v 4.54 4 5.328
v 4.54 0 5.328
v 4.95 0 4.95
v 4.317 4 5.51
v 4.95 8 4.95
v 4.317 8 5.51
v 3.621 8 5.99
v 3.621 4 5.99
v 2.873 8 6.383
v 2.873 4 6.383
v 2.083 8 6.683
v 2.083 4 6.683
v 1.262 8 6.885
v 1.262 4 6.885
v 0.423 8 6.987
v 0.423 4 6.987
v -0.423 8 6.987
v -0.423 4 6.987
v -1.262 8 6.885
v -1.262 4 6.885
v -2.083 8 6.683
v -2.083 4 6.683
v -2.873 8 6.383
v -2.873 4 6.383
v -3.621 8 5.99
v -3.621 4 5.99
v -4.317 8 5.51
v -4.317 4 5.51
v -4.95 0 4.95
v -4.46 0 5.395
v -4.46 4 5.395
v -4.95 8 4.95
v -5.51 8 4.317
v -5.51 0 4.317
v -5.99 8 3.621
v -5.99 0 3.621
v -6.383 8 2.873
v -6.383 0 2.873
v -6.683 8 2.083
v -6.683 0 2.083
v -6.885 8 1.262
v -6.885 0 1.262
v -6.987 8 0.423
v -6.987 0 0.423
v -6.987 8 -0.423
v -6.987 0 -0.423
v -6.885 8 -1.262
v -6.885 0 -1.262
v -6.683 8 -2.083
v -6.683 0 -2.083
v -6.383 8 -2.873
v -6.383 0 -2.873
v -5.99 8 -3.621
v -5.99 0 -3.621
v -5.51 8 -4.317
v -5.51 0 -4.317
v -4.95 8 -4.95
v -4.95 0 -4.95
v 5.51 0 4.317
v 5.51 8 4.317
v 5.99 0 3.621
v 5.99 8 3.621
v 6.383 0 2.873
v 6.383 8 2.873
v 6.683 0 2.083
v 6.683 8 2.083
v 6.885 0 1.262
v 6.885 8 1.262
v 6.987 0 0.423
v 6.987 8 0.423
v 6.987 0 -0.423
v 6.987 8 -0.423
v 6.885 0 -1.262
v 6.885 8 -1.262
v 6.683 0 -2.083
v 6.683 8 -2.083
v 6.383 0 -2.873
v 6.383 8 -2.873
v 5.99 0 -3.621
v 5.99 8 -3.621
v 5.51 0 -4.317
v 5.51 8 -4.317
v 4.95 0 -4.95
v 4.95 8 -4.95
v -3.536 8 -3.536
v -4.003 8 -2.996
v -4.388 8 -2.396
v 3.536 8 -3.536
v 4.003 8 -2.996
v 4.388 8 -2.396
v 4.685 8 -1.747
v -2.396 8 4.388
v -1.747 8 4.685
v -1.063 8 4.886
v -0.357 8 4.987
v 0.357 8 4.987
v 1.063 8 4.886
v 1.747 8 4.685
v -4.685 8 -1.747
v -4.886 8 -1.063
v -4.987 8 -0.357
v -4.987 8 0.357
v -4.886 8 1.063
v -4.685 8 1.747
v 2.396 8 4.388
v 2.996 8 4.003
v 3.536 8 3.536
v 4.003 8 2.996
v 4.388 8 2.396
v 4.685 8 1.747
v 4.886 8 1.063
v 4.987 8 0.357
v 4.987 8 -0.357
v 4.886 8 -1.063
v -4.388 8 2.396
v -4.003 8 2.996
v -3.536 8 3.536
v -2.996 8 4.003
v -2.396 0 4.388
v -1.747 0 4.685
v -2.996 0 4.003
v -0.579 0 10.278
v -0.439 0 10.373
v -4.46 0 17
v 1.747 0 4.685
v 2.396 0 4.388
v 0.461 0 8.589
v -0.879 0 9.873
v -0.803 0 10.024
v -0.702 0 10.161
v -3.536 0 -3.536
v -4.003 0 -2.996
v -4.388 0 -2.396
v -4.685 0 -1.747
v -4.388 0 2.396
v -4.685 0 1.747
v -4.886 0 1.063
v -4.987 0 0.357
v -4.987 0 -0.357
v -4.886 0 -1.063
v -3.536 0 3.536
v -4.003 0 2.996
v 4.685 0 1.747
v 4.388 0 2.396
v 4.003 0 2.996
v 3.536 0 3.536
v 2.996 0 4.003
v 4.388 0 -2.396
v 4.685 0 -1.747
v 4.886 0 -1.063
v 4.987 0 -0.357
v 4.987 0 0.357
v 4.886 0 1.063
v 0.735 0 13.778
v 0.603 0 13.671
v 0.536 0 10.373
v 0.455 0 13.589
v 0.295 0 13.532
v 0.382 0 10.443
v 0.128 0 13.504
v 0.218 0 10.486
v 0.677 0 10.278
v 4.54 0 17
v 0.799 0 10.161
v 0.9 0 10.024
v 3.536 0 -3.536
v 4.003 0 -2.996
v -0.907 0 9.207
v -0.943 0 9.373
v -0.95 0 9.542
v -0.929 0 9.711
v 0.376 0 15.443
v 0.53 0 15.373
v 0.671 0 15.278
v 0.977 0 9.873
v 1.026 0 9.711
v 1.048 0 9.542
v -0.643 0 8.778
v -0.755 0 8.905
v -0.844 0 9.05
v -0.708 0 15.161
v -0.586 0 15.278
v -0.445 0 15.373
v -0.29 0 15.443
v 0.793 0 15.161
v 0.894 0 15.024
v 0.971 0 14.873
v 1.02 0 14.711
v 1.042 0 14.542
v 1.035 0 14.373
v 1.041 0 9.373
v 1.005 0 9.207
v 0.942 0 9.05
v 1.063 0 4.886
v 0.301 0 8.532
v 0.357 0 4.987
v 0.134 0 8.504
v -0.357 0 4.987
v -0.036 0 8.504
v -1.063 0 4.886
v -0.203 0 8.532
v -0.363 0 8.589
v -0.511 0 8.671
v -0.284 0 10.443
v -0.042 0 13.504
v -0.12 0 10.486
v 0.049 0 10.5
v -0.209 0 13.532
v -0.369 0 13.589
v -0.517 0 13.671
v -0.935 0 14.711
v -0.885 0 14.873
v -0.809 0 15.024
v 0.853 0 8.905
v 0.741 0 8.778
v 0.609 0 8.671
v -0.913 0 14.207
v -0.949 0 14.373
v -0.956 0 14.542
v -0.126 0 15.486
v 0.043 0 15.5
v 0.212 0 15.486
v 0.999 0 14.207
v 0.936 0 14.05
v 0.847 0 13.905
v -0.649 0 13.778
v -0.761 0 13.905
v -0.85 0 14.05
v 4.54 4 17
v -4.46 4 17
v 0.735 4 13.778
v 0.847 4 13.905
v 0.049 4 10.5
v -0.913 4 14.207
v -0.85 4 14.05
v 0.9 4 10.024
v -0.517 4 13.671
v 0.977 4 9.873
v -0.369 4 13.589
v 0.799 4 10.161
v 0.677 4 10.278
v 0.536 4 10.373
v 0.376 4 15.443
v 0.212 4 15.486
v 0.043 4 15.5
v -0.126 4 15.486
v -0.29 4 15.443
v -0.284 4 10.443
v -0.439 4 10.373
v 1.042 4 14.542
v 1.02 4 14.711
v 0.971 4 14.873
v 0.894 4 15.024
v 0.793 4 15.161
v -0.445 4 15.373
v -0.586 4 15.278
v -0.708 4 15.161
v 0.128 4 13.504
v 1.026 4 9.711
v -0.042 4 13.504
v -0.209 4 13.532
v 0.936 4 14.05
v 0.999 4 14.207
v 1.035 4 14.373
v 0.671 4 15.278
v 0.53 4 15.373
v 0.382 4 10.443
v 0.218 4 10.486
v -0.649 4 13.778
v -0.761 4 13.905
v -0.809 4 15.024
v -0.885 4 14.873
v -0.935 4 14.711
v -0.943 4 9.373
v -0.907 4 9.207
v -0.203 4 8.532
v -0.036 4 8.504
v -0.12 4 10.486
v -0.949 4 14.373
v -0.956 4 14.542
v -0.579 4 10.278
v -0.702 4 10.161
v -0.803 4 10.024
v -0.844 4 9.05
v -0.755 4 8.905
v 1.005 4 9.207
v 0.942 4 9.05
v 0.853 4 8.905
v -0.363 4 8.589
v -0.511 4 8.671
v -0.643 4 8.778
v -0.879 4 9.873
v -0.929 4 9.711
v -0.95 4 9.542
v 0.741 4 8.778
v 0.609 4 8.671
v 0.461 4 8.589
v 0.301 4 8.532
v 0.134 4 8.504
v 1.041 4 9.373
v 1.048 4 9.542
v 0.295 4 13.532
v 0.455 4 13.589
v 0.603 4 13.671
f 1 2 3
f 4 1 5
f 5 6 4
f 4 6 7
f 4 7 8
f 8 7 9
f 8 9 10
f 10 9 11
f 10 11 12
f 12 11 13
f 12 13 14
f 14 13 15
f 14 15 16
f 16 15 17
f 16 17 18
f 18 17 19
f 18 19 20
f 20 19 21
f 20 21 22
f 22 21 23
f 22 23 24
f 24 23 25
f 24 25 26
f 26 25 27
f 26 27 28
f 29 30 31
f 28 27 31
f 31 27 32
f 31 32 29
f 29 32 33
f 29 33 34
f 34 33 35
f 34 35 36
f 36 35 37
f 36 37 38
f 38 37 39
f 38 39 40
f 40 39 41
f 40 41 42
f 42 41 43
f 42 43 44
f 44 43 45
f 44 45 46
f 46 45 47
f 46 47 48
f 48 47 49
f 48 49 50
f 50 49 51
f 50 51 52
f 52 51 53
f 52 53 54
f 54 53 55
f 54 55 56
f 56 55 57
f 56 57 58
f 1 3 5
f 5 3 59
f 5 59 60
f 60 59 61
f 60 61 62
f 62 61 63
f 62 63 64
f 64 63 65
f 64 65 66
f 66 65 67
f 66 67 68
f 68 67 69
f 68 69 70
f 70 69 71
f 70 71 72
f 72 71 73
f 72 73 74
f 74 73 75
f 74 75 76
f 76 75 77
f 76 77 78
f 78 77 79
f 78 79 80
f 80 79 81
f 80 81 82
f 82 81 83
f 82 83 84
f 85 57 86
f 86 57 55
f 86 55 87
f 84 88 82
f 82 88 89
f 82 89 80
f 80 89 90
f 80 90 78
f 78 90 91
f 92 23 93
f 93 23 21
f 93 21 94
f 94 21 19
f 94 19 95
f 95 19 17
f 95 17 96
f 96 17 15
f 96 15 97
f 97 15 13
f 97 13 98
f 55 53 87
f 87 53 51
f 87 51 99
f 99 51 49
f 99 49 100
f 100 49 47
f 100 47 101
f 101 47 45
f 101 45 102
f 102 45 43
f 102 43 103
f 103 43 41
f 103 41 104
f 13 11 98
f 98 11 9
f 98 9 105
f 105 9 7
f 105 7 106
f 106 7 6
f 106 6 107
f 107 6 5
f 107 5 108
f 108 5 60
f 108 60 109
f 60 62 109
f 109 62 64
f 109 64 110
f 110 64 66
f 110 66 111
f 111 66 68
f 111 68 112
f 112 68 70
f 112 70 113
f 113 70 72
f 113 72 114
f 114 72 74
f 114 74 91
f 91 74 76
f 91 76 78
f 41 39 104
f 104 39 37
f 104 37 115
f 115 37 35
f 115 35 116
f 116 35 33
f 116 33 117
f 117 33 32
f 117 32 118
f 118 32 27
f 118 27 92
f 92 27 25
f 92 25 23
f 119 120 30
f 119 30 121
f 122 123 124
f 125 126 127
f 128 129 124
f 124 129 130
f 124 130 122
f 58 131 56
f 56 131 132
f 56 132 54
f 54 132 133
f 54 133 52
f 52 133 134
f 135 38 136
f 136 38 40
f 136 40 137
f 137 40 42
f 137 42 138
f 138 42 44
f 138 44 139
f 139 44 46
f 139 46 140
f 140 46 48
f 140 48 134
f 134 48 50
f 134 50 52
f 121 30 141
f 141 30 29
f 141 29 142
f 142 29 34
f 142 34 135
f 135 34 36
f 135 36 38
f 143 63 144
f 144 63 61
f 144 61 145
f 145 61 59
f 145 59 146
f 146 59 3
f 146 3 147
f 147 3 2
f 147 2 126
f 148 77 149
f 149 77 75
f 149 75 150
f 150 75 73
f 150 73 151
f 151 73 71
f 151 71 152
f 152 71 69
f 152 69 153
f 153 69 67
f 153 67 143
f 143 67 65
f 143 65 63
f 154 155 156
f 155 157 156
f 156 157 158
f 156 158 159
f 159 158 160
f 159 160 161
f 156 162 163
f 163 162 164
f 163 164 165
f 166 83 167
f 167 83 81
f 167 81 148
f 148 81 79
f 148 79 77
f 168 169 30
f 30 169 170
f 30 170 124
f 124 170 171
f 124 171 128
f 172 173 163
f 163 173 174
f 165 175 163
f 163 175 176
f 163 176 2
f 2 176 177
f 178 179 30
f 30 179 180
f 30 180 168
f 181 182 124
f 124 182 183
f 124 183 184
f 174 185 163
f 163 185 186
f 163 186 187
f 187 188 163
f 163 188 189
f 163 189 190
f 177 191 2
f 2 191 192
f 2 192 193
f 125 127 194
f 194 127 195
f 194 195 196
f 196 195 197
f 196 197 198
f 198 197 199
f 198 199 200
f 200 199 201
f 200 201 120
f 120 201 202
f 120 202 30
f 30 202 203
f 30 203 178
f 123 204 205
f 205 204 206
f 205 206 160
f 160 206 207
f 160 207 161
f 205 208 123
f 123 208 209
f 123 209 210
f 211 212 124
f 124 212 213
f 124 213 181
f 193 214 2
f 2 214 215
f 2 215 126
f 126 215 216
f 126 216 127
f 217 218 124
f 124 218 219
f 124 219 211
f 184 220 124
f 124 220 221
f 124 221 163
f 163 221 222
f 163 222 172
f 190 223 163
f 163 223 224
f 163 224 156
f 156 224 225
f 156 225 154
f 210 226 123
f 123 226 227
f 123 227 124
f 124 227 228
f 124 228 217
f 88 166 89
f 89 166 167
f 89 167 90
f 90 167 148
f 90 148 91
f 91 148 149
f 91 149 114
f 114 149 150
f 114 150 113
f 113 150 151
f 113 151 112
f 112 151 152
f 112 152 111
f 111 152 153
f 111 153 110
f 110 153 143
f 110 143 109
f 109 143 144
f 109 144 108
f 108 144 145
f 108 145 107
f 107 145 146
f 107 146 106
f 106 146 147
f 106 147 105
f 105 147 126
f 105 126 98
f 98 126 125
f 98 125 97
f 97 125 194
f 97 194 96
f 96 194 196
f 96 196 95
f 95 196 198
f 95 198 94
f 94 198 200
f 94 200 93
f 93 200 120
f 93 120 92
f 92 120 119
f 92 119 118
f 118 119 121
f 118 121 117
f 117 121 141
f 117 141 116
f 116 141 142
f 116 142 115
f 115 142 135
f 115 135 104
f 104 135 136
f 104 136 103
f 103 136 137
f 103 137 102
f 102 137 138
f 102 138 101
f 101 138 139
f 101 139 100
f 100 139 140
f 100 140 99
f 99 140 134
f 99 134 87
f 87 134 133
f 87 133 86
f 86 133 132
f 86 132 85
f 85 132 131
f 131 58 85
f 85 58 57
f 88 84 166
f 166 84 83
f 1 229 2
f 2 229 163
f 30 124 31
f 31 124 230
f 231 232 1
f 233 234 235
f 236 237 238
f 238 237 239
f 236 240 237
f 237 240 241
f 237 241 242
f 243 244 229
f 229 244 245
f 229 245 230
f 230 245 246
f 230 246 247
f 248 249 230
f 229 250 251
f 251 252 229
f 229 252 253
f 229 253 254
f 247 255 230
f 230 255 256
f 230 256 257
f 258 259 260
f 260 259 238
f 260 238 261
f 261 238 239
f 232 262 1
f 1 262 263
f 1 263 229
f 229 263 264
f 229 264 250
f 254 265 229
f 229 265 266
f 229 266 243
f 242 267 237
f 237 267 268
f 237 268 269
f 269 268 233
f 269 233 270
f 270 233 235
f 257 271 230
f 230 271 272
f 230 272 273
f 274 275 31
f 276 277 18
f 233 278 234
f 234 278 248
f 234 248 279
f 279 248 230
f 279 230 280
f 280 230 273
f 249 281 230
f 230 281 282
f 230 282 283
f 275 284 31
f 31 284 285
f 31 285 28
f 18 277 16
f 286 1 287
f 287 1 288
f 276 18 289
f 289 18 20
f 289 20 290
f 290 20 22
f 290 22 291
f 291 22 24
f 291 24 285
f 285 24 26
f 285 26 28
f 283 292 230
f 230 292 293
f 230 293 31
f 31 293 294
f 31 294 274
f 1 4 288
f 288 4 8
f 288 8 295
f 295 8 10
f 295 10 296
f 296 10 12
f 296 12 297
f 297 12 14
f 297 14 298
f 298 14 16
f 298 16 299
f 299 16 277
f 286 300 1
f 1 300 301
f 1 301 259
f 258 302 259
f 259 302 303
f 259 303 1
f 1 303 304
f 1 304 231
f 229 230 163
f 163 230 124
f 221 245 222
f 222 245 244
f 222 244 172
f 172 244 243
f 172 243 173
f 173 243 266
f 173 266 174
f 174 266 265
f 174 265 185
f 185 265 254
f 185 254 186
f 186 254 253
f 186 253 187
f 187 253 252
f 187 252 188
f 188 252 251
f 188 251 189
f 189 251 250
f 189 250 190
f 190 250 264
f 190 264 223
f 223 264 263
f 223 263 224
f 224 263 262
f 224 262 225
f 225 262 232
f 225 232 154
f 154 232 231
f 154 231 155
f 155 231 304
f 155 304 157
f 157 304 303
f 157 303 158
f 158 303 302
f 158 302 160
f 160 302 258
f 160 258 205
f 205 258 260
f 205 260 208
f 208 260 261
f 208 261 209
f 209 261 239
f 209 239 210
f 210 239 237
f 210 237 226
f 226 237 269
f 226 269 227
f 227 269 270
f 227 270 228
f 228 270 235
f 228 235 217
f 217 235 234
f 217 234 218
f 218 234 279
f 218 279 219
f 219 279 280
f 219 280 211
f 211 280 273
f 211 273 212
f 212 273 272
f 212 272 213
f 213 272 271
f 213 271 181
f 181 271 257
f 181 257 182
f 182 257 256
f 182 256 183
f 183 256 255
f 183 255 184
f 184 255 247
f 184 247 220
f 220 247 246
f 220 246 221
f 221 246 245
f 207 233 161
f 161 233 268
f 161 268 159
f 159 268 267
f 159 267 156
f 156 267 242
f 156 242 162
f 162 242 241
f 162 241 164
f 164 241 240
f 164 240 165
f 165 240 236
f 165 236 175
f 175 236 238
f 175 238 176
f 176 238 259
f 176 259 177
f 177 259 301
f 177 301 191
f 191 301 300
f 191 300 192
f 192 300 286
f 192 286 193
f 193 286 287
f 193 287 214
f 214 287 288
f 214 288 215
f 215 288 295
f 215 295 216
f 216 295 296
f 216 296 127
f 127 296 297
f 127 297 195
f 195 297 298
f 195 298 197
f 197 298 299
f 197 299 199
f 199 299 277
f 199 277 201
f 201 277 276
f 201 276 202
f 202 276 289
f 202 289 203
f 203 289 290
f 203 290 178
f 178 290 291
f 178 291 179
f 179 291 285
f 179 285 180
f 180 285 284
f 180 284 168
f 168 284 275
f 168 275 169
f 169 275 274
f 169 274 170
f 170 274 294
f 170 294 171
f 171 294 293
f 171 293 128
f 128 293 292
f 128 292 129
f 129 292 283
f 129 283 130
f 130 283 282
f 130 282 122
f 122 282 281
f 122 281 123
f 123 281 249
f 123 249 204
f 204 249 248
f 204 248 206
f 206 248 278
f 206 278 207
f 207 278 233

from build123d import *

# Parameters (mm, degrees)
SKETCH1_R                = 7
SKETCH1_R_2              = 5
BOSS_EXTRUDE1_DEPTH      = 8
CUT_EXTRUDE1_DEPTH       = 8
SKETCH5_W                = 9
SKETCH5_H                = 10
BOSS_EXTRUDE2_DEPTH      = 4
BOSS_EXTRUDE4_REACH      = 17.994
BOSS_EXTRUDE4_END_RADIUS = 7
SKETCH6_W                = 9
SKETCH6_H                = 4
SKETCH8_R                = 1
CUT_EXTRUDE2_DEPTH       = 8


with BuildPart() as part:
    # Sketch1 → Boss-Extrude1 (new body)
    with BuildSketch(Plane(origin=(0, 0, 0), x_dir=(1, 0, 0), z_dir=(0, 1, 0))):
        with Locations(Location((0, 0, 0), (0, 0, 270))):
            Circle(SKETCH1_R)
        with Locations(Location((0, 0, 0), (0, 0, 270))):
            Circle(SKETCH1_R_2, mode=Mode.SUBTRACT)
    extrude(amount=BOSS_EXTRUDE1_DEPTH)

    # Sketch2 → Cut-Extrude1 (cut)
    with BuildSketch(Plane(origin=(0, 8, 0), x_dir=(1, 0, 0), z_dir=(0, 1, 0))):
        Polygon((0, 0), (-4.949747468, 4.949747468), (-8.526445785, 8.526445785), (8.526445785, 8.526445785), align=None)
    extrude(amount=-CUT_EXTRUDE1_DEPTH, mode=Mode.SUBTRACT)



with BuildPart() as body_2:
    # Sketch5 → Boss-Extrude2 (new body)
    with BuildSketch(Plane(origin=(0, 0, 0), x_dir=(1, 0, 0), z_dir=(0, 1, 0))):
        with Locations((0.039670369, -12)):
            Rectangle(SKETCH5_W, SKETCH5_H)
    extrude(amount=BOSS_EXTRUDE2_DEPTH)


with BuildPart() as part_1:
    add(part.part)

    add(body_2.part)  # Boss-Extrude4 merges body 2
    # Boss-Extrude4: up to this cylinder (the profile starts outside it)
    boss_extrude4_end = Plane(origin=(0, 2, 0), z_dir=(0, -1, 0)) * Cylinder(BOSS_EXTRUDE4_END_RADIUS, 50.988, mode=Mode.PRIVATE)
    # Sketch6 → Boss-Extrude4 (add, up to the surface)
    with BuildSketch(Plane(origin=(0, 0, 7), x_dir=(-1, 0, 0), z_dir=(0, 0, -1)), mode=Mode.PRIVATE) as boss_extrude4_sk1:
        with Locations((-0.039670369, 2)):
            Rectangle(SKETCH6_W, SKETCH6_H)
    boss_extrude4_tool1 = extrude(boss_extrude4_sk1.sketch, amount=BOSS_EXTRUDE4_REACH, mode=Mode.PRIVATE) - boss_extrude4_end
    add(boss_extrude4_tool1.solids().sort_by_distance((0.03967, 2, 7))[0])
    add(boss_extrude4_tool1.solids().sort_by_distance((0.03967, 2, 7))[1])

    # Sketch8 → Cut-Extrude2 (cut)
    with BuildSketch(Plane(origin=(0, 4, 0), x_dir=(1, 0, 0), z_dir=(0, 1, 0))):
        with Locations(Location((0.048760734, -9.499904202, 0), (0, 0, 270))):
            Circle(SKETCH8_R)
        with Locations(Location((0.042700568, -14.499904202, 0), (0, 0, 270))):
            Circle(SKETCH8_R)
    extrude(amount=-CUT_EXTRUDE2_DEPTH, mode=Mode.SUBTRACT)


solid = part_1.part
